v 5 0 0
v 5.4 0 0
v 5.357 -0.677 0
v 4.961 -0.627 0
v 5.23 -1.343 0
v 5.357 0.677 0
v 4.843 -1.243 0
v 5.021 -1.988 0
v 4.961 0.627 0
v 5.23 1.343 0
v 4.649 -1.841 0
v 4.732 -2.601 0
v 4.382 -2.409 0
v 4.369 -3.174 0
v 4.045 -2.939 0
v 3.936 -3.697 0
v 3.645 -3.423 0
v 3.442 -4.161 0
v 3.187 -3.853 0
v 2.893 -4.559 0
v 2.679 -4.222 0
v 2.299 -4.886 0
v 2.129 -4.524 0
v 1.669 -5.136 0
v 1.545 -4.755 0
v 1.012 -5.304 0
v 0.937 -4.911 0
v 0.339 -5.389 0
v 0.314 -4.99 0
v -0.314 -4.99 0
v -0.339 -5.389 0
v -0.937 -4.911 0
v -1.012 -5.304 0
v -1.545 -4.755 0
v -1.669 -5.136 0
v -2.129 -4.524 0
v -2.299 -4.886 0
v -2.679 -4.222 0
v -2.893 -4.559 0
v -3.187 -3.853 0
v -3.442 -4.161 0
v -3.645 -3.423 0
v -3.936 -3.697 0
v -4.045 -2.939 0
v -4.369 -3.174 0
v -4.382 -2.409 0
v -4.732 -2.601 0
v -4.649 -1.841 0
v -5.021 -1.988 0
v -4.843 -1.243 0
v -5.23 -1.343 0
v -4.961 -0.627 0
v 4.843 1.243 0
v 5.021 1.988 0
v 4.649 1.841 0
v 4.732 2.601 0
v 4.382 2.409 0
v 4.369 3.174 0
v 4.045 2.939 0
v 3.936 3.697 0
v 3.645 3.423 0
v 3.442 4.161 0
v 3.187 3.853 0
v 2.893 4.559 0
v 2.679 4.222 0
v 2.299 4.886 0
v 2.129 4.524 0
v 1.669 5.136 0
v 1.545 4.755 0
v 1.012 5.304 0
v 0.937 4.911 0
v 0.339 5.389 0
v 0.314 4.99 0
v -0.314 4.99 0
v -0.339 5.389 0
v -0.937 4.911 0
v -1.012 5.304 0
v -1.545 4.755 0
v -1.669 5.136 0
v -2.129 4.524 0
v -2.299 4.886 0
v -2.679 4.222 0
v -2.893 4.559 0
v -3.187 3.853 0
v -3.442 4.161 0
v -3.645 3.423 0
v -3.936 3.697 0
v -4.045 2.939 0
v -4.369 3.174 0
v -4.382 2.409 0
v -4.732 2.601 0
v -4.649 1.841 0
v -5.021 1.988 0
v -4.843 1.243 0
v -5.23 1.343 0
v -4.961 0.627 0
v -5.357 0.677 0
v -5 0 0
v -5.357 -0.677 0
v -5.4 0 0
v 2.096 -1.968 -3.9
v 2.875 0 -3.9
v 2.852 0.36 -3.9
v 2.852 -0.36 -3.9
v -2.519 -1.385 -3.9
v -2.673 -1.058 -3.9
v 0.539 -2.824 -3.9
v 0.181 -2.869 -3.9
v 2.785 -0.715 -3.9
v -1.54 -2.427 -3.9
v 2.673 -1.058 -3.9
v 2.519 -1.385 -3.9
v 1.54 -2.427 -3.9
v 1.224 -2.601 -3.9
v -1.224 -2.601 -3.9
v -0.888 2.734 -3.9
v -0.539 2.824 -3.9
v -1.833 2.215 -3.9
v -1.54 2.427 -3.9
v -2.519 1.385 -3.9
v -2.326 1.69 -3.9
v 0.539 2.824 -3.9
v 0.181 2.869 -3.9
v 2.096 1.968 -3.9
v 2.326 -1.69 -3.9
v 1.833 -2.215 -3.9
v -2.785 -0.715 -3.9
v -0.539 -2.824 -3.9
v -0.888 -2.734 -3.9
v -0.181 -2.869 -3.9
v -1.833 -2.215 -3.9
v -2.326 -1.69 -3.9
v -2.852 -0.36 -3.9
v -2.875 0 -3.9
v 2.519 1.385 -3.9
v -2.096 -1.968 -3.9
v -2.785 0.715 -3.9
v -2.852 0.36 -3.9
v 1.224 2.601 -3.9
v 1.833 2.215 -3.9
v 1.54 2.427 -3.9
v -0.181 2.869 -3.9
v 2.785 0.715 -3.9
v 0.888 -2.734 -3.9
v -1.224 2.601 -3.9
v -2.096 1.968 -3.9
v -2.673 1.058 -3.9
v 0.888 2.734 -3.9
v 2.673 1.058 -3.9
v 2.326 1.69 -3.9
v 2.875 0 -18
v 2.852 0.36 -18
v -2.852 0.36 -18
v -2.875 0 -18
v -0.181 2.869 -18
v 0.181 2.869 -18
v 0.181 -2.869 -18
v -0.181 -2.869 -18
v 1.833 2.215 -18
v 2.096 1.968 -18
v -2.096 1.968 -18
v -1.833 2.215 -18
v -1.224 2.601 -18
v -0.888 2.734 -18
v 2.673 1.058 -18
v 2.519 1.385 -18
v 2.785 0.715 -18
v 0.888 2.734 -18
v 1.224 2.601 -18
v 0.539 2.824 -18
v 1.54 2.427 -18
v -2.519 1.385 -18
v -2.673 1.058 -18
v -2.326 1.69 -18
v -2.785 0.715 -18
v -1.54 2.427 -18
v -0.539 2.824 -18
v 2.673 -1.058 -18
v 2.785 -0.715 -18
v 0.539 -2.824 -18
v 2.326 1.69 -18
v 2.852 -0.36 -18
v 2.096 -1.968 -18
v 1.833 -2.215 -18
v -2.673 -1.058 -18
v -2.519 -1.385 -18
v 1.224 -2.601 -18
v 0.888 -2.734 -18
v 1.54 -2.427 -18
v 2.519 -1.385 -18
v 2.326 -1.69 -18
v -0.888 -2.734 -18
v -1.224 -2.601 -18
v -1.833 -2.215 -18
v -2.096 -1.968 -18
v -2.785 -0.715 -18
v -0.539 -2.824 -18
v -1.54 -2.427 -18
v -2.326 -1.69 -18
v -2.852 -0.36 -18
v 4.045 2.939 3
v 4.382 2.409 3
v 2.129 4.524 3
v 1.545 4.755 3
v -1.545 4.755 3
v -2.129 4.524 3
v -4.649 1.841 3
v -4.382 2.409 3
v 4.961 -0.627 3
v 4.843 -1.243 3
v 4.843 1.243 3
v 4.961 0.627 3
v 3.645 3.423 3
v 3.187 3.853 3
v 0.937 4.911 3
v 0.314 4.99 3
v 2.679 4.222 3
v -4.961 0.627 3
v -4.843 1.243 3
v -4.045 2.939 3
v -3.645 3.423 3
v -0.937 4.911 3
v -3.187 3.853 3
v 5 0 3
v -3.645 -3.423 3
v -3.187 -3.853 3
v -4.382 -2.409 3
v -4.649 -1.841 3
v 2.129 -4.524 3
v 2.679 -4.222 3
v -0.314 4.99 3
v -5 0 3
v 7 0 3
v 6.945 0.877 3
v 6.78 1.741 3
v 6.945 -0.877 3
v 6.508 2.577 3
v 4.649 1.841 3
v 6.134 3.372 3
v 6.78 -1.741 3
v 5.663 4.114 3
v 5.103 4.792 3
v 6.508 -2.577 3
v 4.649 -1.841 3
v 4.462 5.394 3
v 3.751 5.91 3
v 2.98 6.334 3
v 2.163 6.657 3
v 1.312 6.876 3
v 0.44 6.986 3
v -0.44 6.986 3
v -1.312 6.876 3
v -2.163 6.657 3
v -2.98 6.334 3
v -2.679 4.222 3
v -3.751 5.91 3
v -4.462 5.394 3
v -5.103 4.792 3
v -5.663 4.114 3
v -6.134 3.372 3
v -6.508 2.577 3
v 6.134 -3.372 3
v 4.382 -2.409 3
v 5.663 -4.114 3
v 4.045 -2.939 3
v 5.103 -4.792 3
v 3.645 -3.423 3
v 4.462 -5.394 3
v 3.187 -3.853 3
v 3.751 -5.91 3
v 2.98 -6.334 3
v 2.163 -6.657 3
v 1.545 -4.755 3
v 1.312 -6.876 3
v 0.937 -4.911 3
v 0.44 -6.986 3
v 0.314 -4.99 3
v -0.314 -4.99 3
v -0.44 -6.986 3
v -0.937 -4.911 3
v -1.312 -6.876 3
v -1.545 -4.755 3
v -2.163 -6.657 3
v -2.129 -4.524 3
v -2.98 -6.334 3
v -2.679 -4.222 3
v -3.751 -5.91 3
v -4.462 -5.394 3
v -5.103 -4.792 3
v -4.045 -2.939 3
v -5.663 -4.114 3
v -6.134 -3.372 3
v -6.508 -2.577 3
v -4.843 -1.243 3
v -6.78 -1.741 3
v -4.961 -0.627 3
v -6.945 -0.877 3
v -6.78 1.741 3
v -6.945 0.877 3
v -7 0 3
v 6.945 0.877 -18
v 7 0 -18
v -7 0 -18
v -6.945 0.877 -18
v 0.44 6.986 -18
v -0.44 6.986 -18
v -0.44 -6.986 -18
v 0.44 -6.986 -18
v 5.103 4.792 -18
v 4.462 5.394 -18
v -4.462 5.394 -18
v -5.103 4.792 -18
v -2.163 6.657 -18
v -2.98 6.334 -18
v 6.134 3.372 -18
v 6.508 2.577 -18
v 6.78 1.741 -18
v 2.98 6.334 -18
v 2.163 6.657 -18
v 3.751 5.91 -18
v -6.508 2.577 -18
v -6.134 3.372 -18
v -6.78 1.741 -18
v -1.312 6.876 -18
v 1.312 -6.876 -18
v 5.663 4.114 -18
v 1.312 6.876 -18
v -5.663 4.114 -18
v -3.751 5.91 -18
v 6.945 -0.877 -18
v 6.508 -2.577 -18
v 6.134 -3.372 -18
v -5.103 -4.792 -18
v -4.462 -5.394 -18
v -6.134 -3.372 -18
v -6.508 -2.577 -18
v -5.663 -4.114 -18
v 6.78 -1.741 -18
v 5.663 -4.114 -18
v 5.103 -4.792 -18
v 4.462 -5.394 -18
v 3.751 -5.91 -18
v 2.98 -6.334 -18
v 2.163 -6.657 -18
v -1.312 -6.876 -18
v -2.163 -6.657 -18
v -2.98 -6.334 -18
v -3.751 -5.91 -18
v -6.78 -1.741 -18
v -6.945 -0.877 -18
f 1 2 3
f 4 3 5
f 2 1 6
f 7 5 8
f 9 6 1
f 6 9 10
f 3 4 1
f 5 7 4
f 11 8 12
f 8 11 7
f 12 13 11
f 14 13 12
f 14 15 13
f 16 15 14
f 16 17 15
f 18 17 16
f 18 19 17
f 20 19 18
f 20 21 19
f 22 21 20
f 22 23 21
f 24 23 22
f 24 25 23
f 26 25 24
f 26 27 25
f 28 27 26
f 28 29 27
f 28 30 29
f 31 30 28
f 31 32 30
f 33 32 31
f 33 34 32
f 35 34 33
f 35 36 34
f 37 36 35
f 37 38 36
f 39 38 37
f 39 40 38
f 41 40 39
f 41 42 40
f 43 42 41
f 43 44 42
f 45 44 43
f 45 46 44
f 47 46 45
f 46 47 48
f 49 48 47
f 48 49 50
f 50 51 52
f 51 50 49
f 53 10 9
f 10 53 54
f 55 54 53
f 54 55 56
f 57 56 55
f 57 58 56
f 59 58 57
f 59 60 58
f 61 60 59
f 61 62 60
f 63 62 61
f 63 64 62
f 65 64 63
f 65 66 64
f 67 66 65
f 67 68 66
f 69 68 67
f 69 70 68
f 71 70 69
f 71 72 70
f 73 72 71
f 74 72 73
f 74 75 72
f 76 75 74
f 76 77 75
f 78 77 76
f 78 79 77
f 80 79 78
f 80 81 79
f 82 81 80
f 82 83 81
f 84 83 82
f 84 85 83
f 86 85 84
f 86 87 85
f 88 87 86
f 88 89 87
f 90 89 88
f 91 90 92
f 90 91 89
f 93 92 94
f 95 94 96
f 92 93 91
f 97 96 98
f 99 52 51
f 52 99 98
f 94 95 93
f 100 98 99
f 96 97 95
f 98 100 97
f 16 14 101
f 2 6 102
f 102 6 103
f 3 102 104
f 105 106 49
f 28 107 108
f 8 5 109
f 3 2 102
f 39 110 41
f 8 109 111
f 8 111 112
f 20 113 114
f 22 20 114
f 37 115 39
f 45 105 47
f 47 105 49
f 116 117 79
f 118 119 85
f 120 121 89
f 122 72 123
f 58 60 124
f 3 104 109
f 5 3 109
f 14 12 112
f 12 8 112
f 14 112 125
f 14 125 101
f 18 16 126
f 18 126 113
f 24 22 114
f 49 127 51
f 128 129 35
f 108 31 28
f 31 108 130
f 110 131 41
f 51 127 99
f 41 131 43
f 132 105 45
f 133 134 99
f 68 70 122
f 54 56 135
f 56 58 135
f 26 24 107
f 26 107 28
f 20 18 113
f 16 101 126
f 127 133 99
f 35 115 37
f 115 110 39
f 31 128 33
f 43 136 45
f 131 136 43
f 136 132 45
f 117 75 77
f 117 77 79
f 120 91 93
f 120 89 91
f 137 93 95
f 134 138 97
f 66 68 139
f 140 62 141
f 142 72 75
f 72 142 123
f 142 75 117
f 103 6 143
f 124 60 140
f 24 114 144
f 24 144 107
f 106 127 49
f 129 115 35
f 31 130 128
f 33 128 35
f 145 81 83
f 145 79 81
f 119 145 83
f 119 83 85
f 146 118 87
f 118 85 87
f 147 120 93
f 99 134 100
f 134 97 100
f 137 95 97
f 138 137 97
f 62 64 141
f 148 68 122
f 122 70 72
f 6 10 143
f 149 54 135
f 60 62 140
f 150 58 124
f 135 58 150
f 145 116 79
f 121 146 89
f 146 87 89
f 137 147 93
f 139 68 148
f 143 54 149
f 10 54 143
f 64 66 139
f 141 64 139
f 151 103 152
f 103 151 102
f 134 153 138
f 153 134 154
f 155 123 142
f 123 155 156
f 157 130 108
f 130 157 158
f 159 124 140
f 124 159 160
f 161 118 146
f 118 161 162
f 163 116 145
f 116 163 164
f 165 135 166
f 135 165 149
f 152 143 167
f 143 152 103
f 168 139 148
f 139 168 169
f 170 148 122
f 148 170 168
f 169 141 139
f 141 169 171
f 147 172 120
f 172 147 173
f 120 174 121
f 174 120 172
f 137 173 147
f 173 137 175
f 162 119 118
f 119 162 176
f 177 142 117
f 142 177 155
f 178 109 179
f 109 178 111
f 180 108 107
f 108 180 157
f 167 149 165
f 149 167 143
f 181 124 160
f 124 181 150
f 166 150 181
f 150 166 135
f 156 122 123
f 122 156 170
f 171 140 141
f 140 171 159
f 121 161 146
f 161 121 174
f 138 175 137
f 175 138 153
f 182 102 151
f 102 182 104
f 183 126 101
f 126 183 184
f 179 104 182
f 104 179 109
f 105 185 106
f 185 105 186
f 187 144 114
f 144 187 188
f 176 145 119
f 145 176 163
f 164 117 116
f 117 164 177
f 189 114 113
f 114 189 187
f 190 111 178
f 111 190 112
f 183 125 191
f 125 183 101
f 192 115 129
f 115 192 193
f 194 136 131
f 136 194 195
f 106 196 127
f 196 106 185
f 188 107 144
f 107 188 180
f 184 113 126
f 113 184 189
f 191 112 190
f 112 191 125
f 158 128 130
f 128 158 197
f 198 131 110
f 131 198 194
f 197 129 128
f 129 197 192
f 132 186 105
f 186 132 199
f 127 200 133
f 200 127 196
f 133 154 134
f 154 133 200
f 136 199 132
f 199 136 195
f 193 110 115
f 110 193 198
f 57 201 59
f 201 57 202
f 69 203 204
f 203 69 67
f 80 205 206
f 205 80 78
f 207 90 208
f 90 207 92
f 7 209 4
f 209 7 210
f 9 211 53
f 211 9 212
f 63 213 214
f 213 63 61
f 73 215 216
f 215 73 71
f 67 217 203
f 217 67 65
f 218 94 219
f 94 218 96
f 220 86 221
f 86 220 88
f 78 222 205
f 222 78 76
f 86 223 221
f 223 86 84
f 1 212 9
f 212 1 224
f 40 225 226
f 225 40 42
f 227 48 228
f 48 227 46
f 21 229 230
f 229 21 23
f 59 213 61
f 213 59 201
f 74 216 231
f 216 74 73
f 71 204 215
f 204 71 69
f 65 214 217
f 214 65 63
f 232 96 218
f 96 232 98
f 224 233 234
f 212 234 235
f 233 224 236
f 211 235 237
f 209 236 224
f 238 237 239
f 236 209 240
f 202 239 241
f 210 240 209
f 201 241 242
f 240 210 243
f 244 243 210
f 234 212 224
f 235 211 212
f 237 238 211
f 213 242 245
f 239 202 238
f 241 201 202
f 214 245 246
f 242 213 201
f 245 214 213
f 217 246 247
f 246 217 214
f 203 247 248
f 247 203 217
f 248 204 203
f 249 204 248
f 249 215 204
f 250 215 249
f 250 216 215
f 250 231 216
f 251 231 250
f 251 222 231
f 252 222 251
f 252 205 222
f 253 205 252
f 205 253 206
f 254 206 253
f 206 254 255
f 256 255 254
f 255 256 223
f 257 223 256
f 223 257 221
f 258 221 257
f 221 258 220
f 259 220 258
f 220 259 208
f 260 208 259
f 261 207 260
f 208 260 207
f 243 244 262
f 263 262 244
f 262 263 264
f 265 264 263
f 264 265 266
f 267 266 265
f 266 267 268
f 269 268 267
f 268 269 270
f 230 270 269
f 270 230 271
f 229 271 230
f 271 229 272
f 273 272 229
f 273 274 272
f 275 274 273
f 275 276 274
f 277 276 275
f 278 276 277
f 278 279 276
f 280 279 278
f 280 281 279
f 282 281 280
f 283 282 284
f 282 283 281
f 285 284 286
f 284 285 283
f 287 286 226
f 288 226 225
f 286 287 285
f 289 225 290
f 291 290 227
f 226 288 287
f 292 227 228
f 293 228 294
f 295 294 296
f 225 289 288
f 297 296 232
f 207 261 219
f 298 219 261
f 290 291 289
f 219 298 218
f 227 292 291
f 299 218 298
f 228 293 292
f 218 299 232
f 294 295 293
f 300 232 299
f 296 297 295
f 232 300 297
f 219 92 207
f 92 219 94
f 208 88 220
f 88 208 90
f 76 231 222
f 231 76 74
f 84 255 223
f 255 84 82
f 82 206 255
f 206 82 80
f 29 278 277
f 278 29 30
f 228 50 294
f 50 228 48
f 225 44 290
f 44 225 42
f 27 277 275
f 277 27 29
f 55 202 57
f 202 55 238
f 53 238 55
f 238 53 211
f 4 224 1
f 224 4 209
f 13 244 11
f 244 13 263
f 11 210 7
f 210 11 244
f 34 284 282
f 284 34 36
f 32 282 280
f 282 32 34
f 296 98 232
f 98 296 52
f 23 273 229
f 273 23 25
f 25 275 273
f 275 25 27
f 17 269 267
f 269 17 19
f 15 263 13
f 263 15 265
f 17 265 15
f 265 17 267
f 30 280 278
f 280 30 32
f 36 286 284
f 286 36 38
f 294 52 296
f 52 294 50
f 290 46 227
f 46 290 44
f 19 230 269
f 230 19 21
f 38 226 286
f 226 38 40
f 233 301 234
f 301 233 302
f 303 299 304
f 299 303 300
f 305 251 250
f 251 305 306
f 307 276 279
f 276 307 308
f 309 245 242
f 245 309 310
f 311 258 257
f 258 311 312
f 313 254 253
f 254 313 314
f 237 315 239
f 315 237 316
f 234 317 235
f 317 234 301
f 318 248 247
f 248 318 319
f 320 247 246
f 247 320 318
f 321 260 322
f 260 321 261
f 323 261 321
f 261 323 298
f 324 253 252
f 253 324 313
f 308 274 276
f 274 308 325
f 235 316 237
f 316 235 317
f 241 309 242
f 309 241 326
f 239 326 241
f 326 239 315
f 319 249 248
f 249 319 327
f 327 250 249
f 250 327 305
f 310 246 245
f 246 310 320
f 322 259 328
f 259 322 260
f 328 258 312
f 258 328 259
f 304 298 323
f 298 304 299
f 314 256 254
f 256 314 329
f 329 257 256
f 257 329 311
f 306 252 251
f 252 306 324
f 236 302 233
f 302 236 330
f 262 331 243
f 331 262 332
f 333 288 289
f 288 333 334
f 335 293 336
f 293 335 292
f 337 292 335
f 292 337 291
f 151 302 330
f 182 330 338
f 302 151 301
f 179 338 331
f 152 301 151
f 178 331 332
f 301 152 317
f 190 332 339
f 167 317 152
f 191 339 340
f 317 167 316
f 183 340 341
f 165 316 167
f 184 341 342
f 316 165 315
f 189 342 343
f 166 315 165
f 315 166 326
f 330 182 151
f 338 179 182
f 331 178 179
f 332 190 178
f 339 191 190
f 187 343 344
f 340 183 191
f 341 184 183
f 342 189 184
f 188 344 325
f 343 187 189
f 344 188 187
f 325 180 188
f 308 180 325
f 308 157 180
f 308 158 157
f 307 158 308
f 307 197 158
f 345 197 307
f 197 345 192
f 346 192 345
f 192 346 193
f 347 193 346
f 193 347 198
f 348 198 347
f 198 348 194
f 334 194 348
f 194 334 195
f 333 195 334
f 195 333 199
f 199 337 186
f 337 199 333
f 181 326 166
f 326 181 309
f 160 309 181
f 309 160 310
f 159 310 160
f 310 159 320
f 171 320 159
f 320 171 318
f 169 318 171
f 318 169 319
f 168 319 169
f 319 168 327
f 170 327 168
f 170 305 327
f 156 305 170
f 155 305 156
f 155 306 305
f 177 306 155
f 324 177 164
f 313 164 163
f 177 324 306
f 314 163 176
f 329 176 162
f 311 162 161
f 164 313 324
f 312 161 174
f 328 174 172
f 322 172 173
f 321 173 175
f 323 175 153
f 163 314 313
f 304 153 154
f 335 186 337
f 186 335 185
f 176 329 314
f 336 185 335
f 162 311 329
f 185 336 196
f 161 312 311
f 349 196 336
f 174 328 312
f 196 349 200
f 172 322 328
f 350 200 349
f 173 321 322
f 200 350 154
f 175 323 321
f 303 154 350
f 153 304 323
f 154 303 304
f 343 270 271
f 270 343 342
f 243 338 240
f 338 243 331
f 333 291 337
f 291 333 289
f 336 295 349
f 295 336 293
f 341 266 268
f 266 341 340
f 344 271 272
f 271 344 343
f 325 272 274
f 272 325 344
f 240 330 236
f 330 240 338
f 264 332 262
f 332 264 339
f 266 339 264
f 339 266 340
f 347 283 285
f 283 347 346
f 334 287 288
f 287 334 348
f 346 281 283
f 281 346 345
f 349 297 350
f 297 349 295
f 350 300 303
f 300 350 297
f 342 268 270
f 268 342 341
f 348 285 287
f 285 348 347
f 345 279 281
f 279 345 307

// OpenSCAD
$fn = 50;

difference() {
	union() {
		translate(v = [0, 0, -18.0]) {
			cylinder(h = 21, r = 7.0);
		}
	}
	union() {
		translate(v = [0, 0, 0]) {
			rotate(a = [0, 0, 0]) {
				difference() {
					union() {
						translate(v = [0, 0, -21.0]) {
							cylinder(h = 21, r = 2.6);
						}
						translate(v = [0, 0, -3.9]) {
							cylinder(h = 3.9, r1 = 2.875, r2 = 5.4);
						}
						translate(v = [0, 0, -21.0]) {
							cylinder(h = 21, r = 2.875);
						}
						translate(v = [0, 0, -21.0]) {
							cylinder(h = 21, r = 2.6);
						}
					}
					union();
				}
			}
		}
		#cylinder(h = 3, r = 5.0);
	}
}
